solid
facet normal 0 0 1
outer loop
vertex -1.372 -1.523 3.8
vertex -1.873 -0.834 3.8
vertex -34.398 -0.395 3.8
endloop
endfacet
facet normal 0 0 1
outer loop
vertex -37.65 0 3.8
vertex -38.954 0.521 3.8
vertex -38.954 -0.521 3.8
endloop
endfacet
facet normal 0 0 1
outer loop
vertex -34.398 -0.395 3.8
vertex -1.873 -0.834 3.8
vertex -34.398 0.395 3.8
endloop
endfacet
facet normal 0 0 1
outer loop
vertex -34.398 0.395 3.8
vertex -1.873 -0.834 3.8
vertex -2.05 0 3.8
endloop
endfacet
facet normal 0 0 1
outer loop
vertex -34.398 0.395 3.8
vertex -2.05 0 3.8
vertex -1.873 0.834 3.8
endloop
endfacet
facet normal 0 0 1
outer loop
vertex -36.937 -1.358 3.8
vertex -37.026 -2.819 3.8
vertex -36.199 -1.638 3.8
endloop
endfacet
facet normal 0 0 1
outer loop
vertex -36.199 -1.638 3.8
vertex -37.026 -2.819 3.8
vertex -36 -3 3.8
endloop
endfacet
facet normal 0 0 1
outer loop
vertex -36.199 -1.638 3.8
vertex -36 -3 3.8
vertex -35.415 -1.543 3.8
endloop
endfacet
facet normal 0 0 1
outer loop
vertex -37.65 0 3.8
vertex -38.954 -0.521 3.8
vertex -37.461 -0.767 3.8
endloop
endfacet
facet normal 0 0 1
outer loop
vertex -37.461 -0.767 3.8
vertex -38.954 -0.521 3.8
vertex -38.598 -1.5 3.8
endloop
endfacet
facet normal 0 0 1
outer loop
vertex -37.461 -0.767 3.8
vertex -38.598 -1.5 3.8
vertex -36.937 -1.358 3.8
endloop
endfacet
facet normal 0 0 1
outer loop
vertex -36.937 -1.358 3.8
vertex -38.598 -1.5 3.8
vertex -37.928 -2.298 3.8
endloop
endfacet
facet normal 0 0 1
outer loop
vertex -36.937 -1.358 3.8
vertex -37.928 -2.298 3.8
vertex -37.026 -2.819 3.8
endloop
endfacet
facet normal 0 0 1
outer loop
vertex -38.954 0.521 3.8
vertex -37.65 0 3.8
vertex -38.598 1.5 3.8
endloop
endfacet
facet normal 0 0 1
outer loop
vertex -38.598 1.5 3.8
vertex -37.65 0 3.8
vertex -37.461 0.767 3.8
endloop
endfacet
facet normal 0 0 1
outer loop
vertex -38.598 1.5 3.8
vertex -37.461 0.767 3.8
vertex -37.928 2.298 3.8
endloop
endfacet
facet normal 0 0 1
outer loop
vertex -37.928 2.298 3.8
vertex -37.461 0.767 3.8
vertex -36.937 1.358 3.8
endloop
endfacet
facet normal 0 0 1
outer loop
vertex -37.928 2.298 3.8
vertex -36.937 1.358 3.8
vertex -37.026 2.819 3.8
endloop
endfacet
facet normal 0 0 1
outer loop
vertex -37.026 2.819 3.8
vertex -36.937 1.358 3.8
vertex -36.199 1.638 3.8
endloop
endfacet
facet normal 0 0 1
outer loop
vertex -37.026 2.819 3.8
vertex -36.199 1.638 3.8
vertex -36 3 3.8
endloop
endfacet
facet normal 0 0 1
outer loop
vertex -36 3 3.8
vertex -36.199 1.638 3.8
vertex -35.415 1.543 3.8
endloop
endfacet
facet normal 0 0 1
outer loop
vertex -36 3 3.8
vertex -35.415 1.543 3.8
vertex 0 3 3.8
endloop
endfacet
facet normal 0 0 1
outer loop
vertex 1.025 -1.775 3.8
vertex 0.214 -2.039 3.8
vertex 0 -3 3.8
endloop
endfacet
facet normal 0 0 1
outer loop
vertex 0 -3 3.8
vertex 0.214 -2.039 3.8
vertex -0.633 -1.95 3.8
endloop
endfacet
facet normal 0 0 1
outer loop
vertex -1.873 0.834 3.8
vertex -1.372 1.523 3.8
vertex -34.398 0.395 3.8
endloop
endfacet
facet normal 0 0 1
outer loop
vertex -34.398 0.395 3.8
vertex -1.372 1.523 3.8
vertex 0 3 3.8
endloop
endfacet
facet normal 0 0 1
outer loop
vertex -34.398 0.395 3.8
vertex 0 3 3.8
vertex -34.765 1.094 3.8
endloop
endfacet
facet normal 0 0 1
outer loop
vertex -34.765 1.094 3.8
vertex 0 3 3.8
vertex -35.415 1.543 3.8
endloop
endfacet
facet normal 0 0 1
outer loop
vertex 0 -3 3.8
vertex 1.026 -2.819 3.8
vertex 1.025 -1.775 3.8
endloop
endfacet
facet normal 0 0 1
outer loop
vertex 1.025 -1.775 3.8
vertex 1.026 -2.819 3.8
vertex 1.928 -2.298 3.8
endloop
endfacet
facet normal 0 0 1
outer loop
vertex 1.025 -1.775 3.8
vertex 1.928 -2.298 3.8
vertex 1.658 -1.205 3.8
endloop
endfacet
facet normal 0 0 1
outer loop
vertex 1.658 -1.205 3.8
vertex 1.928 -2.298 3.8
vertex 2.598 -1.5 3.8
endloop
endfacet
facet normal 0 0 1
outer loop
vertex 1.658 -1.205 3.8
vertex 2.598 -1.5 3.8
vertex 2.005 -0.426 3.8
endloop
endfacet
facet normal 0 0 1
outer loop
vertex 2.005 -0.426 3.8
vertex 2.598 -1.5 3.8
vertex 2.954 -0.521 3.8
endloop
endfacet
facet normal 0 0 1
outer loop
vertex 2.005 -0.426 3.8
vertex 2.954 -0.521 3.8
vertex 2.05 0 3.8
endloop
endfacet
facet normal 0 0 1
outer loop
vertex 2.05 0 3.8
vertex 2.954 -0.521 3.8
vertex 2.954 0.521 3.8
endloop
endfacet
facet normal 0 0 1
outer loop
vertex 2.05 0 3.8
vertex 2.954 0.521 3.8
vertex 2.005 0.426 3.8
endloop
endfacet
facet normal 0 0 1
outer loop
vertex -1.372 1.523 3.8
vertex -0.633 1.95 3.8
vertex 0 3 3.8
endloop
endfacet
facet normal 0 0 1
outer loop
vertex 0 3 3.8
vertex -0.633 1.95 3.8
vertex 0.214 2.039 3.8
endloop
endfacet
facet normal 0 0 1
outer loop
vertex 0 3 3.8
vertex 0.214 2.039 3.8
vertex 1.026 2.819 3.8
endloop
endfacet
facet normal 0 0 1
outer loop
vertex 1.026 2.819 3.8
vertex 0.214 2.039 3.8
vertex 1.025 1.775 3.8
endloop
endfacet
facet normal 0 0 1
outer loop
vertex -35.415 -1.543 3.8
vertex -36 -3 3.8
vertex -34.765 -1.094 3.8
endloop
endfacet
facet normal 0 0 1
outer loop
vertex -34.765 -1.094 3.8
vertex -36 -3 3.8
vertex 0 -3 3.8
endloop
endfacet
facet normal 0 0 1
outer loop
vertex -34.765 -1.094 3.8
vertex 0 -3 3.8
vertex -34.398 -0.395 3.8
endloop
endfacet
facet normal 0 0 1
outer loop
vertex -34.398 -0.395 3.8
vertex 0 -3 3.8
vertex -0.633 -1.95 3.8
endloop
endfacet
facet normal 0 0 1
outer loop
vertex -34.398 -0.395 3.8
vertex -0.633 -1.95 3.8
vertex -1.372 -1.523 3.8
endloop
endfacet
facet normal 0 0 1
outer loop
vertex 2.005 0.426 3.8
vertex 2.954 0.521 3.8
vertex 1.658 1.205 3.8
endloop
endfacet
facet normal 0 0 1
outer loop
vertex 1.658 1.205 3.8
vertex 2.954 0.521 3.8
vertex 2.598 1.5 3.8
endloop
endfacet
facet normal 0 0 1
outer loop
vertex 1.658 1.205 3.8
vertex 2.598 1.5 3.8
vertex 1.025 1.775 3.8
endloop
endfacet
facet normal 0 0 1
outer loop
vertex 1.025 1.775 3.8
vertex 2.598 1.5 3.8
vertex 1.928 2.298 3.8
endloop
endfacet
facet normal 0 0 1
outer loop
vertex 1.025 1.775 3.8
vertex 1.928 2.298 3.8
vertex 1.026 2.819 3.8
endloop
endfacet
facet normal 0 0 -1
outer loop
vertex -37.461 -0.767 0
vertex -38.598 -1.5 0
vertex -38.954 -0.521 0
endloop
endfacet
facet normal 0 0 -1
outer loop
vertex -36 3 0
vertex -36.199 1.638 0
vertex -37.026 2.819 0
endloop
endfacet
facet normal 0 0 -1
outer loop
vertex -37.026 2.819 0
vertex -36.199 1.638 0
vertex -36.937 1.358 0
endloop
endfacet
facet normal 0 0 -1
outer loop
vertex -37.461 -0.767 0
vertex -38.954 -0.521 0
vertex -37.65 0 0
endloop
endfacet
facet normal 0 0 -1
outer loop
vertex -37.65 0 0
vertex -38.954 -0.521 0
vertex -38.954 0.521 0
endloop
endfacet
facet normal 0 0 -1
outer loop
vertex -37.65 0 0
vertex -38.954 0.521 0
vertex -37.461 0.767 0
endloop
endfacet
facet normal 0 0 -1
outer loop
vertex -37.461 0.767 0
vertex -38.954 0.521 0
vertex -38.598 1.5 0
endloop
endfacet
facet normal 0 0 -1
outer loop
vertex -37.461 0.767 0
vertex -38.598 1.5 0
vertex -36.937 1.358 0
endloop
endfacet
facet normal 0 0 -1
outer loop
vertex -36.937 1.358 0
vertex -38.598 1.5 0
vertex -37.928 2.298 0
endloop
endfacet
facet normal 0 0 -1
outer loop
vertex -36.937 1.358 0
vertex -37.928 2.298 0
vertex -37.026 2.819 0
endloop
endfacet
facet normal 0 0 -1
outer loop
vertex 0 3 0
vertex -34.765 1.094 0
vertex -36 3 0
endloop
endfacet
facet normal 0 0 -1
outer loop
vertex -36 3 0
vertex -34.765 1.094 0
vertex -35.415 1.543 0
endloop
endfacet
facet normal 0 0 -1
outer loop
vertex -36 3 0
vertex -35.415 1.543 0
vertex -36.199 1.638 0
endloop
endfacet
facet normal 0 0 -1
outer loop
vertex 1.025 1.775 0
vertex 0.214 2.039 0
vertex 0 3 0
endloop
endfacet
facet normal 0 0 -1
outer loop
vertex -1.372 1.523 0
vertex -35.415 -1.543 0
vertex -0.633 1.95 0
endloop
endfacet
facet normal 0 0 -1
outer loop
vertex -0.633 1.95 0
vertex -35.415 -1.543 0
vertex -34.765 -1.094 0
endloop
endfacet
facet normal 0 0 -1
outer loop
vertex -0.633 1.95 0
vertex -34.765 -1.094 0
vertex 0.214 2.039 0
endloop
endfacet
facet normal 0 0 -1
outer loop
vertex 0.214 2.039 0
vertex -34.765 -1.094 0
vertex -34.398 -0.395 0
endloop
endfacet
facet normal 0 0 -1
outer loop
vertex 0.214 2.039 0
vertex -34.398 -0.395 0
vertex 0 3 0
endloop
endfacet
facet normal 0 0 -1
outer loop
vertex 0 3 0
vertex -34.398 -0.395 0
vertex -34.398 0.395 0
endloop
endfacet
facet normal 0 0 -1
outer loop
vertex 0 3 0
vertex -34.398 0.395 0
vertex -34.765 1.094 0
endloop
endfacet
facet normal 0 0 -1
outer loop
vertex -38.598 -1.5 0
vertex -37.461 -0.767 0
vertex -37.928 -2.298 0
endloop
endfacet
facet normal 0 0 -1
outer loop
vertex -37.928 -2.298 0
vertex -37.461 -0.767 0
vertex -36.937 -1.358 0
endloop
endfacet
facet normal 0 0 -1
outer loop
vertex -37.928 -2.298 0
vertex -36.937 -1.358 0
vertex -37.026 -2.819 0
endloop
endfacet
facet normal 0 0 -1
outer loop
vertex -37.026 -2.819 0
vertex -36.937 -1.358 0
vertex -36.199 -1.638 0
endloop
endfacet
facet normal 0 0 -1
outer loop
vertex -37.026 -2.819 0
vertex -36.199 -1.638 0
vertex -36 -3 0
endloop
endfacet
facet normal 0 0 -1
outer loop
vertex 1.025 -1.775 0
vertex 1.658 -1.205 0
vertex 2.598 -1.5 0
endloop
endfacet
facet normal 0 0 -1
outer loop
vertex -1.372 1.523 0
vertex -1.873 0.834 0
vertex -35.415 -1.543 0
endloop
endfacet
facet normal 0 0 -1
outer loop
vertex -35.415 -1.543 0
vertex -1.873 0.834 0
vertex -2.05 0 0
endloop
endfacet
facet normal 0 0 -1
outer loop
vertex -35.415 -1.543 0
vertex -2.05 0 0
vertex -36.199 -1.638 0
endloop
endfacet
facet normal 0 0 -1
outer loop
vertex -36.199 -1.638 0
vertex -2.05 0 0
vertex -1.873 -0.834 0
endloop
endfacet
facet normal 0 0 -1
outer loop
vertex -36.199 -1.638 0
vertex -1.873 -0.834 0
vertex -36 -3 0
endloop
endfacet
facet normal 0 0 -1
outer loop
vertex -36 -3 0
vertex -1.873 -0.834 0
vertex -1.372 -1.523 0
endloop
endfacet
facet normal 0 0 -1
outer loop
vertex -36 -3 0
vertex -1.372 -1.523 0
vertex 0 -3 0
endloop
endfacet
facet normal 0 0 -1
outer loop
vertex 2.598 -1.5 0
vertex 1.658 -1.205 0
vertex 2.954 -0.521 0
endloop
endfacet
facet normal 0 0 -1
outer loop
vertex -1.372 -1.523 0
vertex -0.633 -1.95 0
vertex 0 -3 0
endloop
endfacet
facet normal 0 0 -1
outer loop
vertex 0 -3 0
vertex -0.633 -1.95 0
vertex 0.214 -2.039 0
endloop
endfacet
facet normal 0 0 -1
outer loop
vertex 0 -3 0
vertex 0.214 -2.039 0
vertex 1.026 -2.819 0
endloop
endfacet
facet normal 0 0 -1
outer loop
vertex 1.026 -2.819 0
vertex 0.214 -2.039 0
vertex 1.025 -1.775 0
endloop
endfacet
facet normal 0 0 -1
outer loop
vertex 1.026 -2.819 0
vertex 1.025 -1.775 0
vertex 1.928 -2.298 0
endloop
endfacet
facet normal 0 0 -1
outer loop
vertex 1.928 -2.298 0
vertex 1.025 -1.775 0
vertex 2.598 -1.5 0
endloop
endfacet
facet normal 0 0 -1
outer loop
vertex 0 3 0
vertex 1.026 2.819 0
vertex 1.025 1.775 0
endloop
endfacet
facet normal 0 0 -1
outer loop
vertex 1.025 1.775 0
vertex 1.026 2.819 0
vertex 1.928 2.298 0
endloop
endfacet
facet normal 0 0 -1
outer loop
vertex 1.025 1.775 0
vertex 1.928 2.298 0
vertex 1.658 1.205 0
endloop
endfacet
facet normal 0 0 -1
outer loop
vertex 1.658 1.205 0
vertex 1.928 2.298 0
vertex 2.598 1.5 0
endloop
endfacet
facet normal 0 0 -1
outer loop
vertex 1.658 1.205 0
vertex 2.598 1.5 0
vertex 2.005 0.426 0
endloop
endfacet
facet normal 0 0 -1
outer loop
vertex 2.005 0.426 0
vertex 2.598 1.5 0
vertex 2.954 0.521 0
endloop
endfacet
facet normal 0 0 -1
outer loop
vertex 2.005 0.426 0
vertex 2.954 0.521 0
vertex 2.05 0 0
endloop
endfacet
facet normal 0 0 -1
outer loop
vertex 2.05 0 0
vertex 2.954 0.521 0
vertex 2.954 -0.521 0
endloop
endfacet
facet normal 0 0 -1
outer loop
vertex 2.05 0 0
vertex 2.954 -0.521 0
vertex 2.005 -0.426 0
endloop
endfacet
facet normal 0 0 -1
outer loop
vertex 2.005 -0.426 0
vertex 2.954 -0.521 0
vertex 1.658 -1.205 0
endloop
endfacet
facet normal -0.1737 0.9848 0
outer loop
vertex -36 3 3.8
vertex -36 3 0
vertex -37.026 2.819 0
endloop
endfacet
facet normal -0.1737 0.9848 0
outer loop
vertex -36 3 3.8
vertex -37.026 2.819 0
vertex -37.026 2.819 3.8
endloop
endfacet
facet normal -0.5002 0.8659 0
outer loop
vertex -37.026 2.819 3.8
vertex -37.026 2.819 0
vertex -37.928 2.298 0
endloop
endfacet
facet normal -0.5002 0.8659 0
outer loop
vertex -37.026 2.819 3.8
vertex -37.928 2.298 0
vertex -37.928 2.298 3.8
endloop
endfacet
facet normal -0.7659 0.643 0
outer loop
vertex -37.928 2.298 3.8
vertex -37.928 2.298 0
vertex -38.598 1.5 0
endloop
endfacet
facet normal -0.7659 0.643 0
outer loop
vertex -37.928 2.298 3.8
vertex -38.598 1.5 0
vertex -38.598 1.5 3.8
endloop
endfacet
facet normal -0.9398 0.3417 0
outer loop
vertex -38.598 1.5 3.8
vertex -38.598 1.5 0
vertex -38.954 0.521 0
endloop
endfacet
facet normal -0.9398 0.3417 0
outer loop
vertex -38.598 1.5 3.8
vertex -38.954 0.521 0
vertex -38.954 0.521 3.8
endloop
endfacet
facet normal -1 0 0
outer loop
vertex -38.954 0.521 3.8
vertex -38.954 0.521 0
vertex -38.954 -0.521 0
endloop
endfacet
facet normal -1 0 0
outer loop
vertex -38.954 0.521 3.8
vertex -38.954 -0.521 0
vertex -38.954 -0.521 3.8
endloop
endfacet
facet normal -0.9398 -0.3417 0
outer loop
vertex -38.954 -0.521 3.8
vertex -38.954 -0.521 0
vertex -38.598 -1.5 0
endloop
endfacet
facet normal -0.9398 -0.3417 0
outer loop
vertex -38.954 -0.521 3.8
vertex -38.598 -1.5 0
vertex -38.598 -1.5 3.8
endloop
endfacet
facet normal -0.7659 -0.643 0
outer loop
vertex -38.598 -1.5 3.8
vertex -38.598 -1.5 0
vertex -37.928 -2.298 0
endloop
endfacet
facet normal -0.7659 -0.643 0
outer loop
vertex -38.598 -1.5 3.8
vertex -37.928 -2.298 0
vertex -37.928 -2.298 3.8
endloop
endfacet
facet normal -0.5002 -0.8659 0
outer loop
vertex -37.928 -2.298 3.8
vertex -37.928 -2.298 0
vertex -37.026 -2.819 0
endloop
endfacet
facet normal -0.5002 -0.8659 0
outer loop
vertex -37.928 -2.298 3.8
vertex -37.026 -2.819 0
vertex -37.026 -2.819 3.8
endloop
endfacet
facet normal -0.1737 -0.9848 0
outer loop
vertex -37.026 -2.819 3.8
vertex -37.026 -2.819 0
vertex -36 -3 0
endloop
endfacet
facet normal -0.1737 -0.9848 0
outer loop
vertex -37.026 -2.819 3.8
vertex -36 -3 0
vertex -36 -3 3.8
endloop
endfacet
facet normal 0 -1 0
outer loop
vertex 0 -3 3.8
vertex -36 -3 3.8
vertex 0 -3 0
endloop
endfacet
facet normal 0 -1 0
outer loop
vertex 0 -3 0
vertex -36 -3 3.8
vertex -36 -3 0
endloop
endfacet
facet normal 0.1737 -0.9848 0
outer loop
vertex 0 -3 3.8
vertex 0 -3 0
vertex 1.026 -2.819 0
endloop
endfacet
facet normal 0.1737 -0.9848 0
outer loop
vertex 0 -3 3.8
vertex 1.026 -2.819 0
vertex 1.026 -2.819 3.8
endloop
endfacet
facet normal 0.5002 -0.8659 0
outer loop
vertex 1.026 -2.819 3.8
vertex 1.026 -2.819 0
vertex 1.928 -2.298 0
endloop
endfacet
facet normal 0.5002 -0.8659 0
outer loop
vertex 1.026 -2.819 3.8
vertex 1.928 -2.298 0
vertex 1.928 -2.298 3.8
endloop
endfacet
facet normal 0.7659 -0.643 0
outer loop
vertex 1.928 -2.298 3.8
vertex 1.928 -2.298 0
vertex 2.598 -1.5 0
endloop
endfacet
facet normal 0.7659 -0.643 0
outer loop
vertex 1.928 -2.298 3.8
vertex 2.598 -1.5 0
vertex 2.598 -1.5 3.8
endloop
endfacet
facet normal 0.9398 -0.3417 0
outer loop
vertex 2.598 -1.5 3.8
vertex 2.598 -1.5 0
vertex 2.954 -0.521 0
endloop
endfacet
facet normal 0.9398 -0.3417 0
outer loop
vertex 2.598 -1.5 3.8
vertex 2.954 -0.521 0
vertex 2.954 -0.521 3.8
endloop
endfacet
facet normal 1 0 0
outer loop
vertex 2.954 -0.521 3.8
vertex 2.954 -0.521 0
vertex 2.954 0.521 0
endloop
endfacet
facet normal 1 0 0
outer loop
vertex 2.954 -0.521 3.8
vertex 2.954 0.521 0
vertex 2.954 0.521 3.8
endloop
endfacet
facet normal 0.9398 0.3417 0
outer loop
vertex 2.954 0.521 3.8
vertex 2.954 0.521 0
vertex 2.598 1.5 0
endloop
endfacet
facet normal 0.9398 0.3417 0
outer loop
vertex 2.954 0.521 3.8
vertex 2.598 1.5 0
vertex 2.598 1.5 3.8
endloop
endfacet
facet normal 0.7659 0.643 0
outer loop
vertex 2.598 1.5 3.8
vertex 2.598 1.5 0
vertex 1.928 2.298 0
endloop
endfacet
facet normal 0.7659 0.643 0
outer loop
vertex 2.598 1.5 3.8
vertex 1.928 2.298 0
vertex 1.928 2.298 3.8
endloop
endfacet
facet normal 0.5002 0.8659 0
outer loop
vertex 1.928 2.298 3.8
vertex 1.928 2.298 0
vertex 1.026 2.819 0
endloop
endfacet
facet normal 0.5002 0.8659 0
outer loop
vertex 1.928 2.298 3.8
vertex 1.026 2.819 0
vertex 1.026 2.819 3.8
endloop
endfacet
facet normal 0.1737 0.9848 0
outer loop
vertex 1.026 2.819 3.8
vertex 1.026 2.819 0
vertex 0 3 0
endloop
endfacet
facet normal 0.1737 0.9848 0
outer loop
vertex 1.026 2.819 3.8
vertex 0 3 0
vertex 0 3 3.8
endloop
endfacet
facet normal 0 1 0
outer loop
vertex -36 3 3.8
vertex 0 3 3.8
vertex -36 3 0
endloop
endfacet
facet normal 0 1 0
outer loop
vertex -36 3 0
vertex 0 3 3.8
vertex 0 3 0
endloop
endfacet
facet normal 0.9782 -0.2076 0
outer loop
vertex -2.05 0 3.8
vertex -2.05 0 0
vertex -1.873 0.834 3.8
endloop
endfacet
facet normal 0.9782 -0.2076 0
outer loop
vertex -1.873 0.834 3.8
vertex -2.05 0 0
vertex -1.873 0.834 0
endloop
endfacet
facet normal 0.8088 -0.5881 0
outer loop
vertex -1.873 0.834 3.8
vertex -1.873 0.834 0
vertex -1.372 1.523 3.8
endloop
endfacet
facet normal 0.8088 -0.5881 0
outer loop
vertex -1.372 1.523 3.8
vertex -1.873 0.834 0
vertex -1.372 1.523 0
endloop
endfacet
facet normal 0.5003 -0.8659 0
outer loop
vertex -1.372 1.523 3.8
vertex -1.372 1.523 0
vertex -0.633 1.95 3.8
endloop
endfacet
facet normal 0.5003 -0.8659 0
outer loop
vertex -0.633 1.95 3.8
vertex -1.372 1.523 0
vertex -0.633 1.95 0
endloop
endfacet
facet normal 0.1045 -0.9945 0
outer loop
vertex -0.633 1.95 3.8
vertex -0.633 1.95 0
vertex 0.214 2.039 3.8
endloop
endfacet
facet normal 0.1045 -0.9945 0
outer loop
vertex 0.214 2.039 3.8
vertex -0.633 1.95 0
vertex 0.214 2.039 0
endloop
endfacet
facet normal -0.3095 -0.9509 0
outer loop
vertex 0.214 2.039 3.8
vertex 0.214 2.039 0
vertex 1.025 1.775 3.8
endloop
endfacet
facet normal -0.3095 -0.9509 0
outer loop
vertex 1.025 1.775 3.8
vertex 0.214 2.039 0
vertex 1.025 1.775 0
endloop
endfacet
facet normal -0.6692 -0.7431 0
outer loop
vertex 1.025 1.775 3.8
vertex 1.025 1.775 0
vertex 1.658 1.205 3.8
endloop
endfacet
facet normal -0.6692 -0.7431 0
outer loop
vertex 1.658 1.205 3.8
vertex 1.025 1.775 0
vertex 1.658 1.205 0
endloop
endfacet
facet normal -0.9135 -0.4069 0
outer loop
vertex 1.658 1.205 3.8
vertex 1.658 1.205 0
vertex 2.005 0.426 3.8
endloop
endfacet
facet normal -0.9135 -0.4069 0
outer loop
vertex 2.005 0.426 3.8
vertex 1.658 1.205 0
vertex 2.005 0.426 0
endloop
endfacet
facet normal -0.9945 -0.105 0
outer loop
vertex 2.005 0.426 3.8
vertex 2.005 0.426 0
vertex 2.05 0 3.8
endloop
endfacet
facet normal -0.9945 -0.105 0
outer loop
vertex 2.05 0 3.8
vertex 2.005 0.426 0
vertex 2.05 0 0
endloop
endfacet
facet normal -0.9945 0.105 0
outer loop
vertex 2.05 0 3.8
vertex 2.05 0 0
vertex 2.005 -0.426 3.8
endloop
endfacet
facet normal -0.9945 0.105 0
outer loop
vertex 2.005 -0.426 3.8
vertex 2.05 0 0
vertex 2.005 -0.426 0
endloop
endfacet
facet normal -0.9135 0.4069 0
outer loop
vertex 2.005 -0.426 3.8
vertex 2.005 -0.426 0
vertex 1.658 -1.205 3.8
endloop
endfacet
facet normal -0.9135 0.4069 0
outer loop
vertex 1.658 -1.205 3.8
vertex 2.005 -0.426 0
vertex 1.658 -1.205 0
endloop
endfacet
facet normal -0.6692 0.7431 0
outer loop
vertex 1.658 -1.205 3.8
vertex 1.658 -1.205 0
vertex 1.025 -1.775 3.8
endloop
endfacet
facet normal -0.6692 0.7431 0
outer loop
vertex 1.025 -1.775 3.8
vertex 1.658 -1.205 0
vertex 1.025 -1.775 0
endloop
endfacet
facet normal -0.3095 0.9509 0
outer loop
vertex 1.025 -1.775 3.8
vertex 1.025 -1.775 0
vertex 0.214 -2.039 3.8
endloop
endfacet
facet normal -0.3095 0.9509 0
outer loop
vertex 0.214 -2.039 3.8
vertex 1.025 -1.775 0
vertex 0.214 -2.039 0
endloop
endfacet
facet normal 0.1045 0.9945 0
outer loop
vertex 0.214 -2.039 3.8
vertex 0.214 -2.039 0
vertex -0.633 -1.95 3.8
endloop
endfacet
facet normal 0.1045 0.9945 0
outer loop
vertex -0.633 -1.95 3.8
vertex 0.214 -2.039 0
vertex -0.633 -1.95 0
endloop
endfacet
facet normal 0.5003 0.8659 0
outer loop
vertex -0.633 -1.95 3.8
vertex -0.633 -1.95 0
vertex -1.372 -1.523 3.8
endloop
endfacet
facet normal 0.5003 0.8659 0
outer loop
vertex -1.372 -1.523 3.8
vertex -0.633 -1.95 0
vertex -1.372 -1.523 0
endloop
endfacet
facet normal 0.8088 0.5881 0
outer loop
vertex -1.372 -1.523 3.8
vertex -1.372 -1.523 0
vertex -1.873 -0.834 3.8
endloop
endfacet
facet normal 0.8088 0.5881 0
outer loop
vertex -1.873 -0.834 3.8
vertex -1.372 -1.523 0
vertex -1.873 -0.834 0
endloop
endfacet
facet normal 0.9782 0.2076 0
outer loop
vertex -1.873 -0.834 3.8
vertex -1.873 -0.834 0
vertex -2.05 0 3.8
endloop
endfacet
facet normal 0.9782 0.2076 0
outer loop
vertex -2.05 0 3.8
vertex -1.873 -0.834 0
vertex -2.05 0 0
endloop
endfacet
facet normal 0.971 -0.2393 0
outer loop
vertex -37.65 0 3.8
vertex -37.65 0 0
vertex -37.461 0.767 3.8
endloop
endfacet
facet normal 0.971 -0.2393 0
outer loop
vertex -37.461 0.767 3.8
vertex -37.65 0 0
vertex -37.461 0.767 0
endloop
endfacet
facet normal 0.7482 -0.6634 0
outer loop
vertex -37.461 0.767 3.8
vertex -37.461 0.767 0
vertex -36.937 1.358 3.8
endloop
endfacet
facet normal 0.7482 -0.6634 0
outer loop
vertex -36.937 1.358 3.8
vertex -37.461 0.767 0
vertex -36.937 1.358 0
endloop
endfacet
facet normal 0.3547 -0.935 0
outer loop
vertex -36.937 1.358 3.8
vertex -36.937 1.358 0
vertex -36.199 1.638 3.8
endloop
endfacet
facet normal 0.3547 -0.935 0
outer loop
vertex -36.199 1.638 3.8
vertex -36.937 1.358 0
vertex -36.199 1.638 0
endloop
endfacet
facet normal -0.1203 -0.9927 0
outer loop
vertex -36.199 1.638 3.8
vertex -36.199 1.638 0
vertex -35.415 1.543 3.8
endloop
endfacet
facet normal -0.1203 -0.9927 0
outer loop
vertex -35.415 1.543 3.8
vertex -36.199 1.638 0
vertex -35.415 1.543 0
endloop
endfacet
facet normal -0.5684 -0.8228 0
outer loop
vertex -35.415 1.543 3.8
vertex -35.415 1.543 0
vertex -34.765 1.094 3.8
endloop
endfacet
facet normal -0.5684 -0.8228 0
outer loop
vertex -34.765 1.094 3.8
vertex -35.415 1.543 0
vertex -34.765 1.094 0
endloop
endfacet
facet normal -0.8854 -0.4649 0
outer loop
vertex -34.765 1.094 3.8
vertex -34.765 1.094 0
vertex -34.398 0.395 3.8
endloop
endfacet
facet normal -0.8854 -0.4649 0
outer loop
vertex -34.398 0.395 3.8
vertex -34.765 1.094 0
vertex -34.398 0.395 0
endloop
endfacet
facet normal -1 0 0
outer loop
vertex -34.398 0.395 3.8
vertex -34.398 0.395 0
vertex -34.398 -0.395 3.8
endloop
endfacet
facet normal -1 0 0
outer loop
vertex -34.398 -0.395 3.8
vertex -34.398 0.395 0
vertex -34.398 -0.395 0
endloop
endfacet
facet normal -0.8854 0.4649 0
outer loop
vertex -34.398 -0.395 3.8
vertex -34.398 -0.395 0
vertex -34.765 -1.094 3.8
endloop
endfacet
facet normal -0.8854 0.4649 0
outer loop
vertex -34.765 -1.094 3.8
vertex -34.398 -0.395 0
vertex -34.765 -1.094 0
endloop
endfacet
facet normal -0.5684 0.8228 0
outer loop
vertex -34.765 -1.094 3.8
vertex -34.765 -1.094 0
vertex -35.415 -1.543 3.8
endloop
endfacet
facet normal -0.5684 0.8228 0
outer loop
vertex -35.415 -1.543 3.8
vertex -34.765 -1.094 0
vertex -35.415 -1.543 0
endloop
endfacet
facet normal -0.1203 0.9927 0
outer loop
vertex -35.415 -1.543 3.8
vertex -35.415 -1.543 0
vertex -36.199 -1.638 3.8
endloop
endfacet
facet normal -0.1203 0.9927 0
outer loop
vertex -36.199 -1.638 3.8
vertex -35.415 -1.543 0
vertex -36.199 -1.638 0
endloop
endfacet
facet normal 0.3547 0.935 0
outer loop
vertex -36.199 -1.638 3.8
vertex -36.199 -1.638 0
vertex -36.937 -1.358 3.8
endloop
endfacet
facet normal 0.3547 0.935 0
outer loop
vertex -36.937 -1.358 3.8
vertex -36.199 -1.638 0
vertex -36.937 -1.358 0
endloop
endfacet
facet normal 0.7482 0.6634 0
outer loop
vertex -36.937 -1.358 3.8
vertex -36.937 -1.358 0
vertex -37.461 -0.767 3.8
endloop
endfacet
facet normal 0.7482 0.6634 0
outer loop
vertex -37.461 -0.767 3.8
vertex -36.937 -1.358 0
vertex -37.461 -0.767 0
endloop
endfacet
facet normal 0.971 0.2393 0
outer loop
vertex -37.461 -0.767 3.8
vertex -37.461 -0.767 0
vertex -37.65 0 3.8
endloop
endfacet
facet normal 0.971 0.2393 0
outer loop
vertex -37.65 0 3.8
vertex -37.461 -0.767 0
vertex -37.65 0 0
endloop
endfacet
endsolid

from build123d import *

# Parameters (mm, degrees)
SKETCH1_R           = 2.05
SKETCH1_R_2         = 1.65
BOSS_EXTRUDE1_DEPTH = 3.8


with BuildPart() as part:
    # Sketch1 → Boss-Extrude1 (new body)
    with BuildSketch(Plane.XY):
        with BuildLine():
            Line((0, 3), (-36, 3))
            ThreePointArc((-36, 3), (-39, 0), (-36, -3))
            Line((-36, -3), (0, -3))
            ThreePointArc((0, -3), (3, 0), (0, 3))
        make_face()
        with Locations(Location((0, 0, 0), (0, 0, 180))):
            Circle(SKETCH1_R, mode=Mode.SUBTRACT)
        with Locations(Location((-36, 0, 0), (0, 0, 180))):
            Circle(SKETCH1_R_2, mode=Mode.SUBTRACT)
    extrude(amount=BOSS_EXTRUDE1_DEPTH)


solid = part.part
